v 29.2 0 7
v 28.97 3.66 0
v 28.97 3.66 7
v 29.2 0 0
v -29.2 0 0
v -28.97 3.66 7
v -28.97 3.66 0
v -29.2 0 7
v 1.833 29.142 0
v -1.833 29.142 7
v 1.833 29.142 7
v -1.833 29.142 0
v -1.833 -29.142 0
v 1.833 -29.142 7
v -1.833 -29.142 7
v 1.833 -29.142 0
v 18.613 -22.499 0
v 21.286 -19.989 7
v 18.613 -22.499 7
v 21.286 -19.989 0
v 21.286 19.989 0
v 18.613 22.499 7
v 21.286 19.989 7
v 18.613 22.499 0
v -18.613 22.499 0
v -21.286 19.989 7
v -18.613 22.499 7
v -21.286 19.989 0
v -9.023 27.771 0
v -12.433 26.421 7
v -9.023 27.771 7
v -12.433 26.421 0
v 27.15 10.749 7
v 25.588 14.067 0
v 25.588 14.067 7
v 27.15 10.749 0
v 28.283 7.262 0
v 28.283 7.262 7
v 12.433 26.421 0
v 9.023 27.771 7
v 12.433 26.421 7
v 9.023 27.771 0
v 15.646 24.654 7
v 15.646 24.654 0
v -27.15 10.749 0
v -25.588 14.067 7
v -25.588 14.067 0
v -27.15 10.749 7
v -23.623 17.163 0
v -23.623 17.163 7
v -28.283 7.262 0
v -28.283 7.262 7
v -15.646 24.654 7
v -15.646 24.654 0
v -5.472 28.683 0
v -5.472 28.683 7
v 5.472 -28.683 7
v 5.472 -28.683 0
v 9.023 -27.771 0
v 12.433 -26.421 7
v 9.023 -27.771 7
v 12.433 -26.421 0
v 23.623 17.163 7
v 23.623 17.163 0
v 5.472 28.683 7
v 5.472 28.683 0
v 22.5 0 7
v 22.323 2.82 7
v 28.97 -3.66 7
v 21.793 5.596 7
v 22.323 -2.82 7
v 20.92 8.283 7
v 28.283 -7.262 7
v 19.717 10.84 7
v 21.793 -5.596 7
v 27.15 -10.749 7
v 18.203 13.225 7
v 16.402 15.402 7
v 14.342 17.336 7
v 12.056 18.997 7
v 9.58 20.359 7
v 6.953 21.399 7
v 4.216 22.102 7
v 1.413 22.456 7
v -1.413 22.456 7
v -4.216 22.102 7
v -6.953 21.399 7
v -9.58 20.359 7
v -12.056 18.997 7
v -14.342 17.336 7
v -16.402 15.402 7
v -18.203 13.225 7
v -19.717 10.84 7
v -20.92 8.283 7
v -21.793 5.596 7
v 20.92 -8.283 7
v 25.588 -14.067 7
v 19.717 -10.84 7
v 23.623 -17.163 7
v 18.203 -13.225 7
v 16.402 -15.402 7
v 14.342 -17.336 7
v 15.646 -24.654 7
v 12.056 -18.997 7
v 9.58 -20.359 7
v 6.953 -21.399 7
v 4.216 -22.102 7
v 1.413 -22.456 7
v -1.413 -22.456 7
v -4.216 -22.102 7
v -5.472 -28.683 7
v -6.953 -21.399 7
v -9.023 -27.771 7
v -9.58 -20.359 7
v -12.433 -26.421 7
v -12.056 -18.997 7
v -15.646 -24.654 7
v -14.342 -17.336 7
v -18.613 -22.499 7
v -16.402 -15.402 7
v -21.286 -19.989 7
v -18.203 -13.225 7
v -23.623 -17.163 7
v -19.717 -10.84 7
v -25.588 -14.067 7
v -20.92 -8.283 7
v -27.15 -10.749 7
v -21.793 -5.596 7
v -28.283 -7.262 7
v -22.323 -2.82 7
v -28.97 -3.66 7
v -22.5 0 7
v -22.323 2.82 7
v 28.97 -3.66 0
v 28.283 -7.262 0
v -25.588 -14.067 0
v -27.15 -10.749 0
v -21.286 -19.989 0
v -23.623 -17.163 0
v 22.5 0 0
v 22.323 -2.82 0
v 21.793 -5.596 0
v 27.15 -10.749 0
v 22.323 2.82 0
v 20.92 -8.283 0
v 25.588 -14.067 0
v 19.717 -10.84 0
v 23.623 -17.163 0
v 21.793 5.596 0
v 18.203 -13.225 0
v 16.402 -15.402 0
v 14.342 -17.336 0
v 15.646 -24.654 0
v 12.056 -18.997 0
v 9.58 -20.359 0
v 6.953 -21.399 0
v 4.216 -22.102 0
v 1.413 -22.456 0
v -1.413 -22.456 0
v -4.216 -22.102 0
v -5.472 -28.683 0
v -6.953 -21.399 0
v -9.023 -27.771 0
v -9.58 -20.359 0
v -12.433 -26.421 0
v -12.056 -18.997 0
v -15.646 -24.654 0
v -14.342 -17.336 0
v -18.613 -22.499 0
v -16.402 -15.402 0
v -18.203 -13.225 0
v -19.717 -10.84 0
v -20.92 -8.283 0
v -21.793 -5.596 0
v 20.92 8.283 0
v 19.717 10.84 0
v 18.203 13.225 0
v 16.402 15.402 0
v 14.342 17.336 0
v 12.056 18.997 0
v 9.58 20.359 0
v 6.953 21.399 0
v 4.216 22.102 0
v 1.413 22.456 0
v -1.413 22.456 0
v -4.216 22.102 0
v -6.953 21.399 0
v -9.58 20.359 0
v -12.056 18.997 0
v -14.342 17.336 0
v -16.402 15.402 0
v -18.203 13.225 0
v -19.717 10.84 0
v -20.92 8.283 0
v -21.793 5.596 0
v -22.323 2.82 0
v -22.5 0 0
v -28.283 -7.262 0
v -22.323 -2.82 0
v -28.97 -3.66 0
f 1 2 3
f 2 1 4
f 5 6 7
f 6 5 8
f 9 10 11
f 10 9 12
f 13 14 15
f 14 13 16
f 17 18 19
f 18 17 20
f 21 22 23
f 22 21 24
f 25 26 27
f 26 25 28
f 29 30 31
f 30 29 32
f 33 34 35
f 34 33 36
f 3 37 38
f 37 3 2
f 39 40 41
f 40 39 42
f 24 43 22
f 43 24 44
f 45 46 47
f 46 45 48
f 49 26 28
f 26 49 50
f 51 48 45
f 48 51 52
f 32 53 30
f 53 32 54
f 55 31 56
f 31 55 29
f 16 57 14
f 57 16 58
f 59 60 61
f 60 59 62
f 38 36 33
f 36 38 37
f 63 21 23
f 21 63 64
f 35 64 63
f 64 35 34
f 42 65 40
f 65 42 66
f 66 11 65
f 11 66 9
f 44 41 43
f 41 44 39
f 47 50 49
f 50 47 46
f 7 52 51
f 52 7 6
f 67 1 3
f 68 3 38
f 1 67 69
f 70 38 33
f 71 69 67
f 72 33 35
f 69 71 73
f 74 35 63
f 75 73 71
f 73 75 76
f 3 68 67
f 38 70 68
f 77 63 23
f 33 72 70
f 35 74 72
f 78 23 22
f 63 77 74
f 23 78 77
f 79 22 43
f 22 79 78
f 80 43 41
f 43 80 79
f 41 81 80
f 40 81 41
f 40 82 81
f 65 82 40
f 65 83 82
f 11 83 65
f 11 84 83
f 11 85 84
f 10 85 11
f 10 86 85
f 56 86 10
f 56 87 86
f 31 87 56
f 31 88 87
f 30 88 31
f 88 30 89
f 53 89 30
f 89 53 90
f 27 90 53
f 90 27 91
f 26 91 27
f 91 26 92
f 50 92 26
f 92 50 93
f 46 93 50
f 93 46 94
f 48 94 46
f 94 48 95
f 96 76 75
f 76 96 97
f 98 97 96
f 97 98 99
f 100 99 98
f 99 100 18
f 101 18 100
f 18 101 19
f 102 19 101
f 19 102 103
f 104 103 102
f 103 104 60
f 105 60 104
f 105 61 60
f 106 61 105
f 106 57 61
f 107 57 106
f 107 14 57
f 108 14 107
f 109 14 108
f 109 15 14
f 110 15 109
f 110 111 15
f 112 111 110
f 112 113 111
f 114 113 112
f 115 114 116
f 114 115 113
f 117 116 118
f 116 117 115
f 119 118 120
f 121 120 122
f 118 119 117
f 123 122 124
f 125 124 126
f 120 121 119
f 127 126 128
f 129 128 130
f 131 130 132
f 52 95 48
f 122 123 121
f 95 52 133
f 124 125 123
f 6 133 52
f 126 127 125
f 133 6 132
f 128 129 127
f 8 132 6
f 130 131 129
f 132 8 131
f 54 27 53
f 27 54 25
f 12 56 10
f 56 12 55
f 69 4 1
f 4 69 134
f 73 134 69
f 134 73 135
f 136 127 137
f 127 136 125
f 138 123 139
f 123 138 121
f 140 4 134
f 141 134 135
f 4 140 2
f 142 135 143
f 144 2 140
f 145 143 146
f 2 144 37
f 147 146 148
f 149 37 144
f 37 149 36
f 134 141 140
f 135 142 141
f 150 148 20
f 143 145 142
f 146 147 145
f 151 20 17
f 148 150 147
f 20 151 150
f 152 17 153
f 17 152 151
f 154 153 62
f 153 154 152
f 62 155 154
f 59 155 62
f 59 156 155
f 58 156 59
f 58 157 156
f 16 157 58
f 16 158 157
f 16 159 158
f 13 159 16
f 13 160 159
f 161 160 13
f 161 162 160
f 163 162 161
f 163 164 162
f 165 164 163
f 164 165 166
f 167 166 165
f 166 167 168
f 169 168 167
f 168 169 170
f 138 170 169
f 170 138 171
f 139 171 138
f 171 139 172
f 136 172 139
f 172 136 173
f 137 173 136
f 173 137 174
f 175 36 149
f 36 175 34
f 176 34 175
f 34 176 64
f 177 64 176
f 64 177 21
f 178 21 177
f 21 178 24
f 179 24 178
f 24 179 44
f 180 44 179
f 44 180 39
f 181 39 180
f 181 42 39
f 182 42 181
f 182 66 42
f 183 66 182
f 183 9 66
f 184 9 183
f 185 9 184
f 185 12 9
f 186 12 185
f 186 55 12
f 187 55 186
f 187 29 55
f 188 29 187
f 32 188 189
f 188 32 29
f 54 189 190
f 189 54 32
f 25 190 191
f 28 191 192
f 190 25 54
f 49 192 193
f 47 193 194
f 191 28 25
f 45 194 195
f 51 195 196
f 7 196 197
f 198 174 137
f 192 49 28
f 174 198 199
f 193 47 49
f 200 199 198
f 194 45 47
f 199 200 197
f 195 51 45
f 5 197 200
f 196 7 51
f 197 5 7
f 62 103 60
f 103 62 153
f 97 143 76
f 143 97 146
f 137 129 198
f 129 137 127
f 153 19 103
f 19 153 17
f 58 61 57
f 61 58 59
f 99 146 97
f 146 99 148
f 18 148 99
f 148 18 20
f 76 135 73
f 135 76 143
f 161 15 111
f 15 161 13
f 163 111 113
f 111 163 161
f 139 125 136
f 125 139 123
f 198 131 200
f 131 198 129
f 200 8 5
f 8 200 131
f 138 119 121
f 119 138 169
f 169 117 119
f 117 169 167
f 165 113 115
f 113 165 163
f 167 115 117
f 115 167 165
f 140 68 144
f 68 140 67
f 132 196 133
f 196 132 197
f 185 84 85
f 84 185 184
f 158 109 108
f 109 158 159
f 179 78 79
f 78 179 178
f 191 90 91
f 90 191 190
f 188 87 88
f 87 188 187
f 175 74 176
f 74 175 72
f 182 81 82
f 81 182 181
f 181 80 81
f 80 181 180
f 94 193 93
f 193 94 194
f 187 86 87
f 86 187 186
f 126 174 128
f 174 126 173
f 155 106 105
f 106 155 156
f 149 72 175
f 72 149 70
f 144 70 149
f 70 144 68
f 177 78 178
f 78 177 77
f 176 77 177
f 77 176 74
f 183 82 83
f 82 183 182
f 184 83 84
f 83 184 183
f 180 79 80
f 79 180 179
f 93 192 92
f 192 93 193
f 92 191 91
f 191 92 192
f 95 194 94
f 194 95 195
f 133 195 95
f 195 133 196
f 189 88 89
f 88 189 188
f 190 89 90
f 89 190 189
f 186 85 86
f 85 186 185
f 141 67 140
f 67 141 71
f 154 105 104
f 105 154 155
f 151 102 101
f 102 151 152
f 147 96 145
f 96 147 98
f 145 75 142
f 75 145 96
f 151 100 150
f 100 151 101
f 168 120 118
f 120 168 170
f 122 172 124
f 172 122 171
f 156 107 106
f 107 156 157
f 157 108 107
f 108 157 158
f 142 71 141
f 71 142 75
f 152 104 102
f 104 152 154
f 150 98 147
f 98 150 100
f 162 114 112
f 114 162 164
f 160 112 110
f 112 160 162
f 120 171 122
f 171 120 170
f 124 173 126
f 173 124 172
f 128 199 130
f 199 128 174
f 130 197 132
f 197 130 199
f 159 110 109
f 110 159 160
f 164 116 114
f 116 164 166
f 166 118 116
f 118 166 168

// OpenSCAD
$fn = 50;


difference() {
	union() {
		translate(v = [0, 0, 0]) {
			rotate(a = [0, 0, 0]) {
				cylinder(h = 7, r = 29.2000000000);
			}
		}
	}
	union() {
		translate(v = [0, 0, 0]) {
			rotate(a = [0, 0, 0]) {
				cylinder(h = 7, r = 22.5000000000);
			}
		}
	}
}
